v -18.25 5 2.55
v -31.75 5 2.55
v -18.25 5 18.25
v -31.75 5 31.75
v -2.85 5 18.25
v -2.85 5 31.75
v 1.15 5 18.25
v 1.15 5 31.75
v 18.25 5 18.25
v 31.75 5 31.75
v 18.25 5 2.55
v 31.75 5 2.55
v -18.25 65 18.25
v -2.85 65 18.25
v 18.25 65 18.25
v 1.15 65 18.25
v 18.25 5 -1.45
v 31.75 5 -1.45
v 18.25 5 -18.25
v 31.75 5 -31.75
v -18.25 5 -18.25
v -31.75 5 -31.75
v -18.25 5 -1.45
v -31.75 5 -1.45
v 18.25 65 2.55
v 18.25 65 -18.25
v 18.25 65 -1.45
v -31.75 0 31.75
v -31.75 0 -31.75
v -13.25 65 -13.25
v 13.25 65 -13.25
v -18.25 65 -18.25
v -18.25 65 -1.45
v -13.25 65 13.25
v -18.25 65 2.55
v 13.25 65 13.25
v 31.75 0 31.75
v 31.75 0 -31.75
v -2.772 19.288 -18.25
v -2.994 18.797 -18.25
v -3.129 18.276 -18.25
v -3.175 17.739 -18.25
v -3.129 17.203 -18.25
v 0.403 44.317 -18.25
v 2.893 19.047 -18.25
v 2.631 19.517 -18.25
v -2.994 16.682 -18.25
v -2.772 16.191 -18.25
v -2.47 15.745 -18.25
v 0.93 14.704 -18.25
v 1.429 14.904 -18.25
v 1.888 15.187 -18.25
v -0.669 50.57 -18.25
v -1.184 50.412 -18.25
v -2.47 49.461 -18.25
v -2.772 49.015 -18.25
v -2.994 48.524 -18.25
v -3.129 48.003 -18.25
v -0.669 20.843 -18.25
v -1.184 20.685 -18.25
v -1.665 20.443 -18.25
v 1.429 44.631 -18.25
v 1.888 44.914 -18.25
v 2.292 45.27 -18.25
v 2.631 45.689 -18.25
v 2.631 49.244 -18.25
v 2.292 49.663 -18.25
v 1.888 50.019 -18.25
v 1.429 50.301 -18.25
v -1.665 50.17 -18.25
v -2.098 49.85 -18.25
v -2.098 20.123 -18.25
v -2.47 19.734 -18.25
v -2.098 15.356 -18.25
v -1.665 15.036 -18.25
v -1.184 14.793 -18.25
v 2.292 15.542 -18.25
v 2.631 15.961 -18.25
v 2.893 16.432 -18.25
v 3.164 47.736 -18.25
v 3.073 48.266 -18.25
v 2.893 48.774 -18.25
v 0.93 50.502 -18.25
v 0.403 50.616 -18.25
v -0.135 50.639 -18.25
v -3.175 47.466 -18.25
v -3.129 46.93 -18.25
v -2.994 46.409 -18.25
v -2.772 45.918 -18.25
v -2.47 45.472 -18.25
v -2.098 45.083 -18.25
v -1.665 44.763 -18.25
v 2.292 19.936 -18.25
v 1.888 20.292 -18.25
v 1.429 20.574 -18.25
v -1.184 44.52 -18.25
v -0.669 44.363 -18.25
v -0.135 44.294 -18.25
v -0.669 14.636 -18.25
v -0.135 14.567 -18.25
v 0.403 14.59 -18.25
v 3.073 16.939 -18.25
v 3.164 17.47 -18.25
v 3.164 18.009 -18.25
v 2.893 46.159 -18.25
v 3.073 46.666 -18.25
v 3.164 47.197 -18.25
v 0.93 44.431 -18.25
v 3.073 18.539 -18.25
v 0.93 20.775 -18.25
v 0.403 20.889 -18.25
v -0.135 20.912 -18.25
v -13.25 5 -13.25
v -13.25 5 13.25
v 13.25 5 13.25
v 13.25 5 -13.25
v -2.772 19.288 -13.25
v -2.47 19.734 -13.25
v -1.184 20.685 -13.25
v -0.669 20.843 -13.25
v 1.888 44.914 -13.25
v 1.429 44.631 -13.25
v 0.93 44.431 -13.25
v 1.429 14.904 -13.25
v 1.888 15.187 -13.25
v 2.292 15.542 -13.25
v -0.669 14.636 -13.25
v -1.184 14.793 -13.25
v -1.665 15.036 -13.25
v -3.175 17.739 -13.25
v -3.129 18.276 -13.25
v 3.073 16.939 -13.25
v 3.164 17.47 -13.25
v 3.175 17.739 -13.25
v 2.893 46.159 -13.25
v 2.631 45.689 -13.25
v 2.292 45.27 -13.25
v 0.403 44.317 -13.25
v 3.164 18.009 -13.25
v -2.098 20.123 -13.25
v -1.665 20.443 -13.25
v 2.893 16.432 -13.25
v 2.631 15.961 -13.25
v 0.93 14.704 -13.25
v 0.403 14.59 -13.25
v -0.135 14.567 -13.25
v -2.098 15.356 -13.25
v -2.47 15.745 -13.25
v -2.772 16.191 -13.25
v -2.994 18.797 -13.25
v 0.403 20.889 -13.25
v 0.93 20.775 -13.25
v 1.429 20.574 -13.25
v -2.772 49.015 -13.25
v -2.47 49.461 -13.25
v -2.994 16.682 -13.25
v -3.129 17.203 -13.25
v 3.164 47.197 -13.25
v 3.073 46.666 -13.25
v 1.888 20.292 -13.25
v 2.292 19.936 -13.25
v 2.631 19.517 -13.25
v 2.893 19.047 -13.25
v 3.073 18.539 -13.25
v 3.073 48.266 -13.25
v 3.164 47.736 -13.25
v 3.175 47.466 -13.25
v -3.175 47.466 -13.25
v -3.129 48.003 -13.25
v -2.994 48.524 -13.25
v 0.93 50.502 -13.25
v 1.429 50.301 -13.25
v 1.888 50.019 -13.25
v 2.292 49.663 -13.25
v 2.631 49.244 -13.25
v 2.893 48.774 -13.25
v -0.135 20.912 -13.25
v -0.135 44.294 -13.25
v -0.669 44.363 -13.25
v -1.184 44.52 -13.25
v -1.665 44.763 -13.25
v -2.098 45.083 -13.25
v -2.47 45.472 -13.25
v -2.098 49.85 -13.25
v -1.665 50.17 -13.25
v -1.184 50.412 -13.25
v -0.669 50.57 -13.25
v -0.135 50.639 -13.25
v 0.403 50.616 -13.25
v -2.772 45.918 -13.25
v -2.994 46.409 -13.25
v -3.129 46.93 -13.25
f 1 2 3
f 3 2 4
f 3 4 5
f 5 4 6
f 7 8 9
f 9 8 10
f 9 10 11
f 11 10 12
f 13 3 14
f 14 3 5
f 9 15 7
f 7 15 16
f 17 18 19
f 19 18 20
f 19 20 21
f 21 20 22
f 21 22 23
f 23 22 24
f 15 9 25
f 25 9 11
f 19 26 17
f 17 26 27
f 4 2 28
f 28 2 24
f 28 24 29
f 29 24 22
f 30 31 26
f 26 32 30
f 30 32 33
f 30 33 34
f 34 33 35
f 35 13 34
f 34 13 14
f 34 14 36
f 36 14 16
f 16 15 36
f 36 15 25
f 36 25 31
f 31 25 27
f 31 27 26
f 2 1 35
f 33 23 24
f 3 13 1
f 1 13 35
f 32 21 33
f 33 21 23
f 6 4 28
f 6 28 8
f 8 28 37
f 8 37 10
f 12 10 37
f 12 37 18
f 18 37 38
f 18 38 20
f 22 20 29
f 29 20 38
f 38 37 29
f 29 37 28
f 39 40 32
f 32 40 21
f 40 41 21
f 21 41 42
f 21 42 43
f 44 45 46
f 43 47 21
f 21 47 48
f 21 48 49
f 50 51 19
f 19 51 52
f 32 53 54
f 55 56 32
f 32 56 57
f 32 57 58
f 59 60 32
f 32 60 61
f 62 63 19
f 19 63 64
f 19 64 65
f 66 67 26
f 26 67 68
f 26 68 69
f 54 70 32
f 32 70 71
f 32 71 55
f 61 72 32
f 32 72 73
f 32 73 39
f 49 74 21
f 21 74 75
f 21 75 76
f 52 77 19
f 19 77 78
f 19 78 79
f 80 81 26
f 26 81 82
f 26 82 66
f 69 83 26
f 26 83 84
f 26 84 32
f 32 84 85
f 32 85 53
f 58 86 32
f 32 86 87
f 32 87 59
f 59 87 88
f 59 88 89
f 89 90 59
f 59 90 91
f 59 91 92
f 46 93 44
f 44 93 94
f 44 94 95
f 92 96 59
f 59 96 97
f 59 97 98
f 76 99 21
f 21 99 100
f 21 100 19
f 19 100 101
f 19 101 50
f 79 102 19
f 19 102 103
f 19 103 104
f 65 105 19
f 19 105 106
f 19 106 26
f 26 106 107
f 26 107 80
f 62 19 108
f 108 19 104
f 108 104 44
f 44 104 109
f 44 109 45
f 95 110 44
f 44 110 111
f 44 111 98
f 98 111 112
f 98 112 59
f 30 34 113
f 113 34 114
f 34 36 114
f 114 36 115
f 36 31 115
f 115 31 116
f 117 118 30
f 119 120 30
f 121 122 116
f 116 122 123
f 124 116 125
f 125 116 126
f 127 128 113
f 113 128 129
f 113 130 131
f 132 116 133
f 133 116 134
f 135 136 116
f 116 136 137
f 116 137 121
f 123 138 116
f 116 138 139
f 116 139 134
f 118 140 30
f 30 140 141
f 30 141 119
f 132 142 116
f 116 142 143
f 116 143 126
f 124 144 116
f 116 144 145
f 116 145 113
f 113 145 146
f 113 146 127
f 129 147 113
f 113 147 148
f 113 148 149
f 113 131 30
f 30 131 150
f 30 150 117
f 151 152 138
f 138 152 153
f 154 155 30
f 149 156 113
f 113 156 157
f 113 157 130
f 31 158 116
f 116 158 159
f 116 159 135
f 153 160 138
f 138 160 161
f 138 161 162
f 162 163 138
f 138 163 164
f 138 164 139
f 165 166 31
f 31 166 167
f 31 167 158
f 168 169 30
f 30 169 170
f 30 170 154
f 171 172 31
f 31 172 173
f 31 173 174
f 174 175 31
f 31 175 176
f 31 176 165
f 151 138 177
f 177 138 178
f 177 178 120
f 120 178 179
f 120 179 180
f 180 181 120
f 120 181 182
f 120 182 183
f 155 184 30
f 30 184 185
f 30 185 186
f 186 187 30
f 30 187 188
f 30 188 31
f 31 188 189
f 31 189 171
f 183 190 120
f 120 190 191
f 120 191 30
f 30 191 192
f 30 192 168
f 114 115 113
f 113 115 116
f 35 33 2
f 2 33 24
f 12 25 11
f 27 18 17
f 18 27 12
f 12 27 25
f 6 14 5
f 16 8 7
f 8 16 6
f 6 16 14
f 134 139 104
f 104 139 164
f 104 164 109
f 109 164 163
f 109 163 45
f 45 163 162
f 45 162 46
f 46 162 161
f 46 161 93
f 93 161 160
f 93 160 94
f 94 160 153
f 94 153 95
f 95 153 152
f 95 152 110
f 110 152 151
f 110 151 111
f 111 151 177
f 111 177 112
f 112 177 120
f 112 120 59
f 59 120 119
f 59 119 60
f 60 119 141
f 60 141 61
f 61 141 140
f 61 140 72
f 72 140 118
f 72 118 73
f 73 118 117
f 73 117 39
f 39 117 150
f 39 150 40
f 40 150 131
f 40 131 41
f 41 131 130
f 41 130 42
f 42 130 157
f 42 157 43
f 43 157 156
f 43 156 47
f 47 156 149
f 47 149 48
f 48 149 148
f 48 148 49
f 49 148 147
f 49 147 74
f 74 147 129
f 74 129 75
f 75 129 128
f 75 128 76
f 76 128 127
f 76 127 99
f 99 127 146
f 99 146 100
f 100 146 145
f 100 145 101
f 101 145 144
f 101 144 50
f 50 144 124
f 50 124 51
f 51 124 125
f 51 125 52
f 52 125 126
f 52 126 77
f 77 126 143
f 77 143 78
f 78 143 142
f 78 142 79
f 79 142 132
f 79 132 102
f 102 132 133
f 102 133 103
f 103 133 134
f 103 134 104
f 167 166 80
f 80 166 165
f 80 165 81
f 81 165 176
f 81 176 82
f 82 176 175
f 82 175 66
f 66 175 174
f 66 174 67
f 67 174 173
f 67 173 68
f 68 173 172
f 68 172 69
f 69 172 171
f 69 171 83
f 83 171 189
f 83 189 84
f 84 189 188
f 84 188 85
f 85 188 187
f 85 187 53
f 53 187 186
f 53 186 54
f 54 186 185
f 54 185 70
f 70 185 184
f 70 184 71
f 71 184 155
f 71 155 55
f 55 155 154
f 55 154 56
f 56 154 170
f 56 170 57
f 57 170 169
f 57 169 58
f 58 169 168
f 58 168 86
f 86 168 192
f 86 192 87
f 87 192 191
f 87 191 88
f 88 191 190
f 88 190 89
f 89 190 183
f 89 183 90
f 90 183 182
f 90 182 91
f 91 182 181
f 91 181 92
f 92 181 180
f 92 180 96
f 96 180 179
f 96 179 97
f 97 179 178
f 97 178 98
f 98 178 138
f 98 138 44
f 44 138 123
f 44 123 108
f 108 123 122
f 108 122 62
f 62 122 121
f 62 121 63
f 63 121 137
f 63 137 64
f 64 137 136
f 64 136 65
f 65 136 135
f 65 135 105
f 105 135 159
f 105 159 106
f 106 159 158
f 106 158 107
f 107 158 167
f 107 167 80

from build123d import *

# Parameters (mm, degrees)
SKETCH1_W               = 63.5
SKETCH1_H               = 63.5
BOSS_EXTRUDE1_DEPTH     = 5
SKETCH2_W               = 36.5
SKETCH2_H               = 36.5
SKETCH2_W_2             = 26.5
SKETCH2_H_2             = 26.5
BOSS_EXTRUDE2_DEPTH     = 60
SKETCH13_W              = 13.5
SKETCH13_H              = 4
BOSS_EXTRUDE3_DEPTH     = 60
CUT_EXTRUDE1_DEPTH      = 81.059680864
CUT_EXTRUDE1_DEPTH_BACK = 81.059680864
SKETCH15_W              = 13.5
SKETCH15_H              = 4
BOSS_EXTRUDE4_DEPTH     = 60
CUT_EXTRUDE3_DEPTH      = 81.059680864
CUT_EXTRUDE3_DEPTH_BACK = 81.059680864
SKETCH17_W              = 4
SKETCH17_H              = 13.5
BOSS_EXTRUDE5_DEPTH     = 60
CUT_EXTRUDE4_DEPTH      = 81.188668152
CUT_EXTRUDE4_DEPTH_BACK = 81.188668152
SKETCH21_R              = 3.175
CUT_EXTRUDE7_DEPTH      = 20


with BuildPart() as part:
    # Sketch1 → Boss-Extrude1 (new body)
    with BuildSketch(Plane(origin=(0, 0, 0), x_dir=(1, 0, 0), z_dir=(0, 1, 0))):
        Rectangle(SKETCH1_W, SKETCH1_H)
    extrude(amount=BOSS_EXTRUDE1_DEPTH)

    # Sketch2 → Boss-Extrude2 (add)
    with BuildSketch(Plane(origin=(0, 5, 0), x_dir=(1, 0, 0), z_dir=(0, 1, 0))):
        Rectangle(SKETCH2_W, SKETCH2_H)
        Rectangle(SKETCH2_W_2, SKETCH2_H_2, mode=Mode.SUBTRACT)
    extrude(amount=BOSS_EXTRUDE2_DEPTH)

    # Sketch13 → Boss-Extrude3 (add)
    with BuildSketch(Plane(origin=(0, 5, 0), x_dir=(1, 0, 0), z_dir=(0, 1, 0))):
        with Locations((-25, -0.55)):
            Rectangle(SKETCH13_W, SKETCH13_H)
    extrude(amount=BOSS_EXTRUDE3_DEPTH)

    # Sketch14 → Cut-Extrude1 (cut, two sides: drawn at the far end of the back side and taken through both)
    with BuildSketch(Plane.XY.offset(2.55).offset(-CUT_EXTRUDE1_DEPTH_BACK)):
        Polygon((-72.29949978, -175.219999022), (-31.75, 5), (-18.25, 65), (22.29949978, 245.219999022), (-338.140498264, 326.318998582), (-432.739497824, -94.120999462), align=None)
    extrude(amount=CUT_EXTRUDE1_DEPTH + CUT_EXTRUDE1_DEPTH_BACK, mode=Mode.SUBTRACT)

    # Sketch15 → Boss-Extrude4 (add)
    with BuildSketch(Plane(origin=(0, 5, 0), x_dir=(1, 0, 0), z_dir=(0, 1, 0))):
        with Locations((25, -0.55)):
            Rectangle(SKETCH15_W, SKETCH15_H)
    extrude(amount=BOSS_EXTRUDE4_DEPTH)

    # Sketch16 → Cut-Extrude3 (cut, two sides: drawn at the far end of the back side and taken through both)
    with BuildSketch(Plane.XY.offset(2.55).offset(-CUT_EXTRUDE3_DEPTH_BACK)):
        Polygon((72.29949978, -175.219999022), (31.75, 5), (18.25, 65), (-22.29949978, 245.219999022), (338.140498264, 326.318998582), (432.739497824, -94.120999462), align=None)
    extrude(amount=CUT_EXTRUDE3_DEPTH + CUT_EXTRUDE3_DEPTH_BACK, mode=Mode.SUBTRACT)

    # Sketch17 → Boss-Extrude5 (add)
    with BuildSketch(Plane(origin=(0, 5, 0), x_dir=(1, 0, 0), z_dir=(0, 1, 0))):
        with Locations((-0.85, -25)):
            Rectangle(SKETCH17_W, SKETCH17_H)
    extrude(amount=BOSS_EXTRUDE5_DEPTH)

    # Sketch18 → Cut-Extrude4 (cut, two sides: drawn at the far end of the back side and taken through both)
    with BuildSketch(Plane.ZY.offset(2.85).offset(-CUT_EXTRUDE4_DEPTH_BACK)):
        Polygon((72.29949978, -175.219999022), (31.75, 5), (18.25, 65), (-22.29949978, 245.219999022), (338.140498264, 326.318998582), (432.739497824, -94.120999462), align=None)
    extrude(amount=CUT_EXTRUDE4_DEPTH + CUT_EXTRUDE4_DEPTH_BACK, mode=Mode.SUBTRACT)

    # Sketch21 → Cut-Extrude7 (cut)
    with BuildSketch(Plane(origin=(0, 0, -18.25), x_dir=(-1, 0, 0), z_dir=(0, 0, -1))):
        with Locations((0, 17.739365868)):
            Circle(SKETCH21_R)
        with Locations((0, 47.466444019)):
            Circle(SKETCH21_R)
    extrude(amount=-CUT_EXTRUDE7_DEPTH, mode=Mode.SUBTRACT)


solid = part.part
